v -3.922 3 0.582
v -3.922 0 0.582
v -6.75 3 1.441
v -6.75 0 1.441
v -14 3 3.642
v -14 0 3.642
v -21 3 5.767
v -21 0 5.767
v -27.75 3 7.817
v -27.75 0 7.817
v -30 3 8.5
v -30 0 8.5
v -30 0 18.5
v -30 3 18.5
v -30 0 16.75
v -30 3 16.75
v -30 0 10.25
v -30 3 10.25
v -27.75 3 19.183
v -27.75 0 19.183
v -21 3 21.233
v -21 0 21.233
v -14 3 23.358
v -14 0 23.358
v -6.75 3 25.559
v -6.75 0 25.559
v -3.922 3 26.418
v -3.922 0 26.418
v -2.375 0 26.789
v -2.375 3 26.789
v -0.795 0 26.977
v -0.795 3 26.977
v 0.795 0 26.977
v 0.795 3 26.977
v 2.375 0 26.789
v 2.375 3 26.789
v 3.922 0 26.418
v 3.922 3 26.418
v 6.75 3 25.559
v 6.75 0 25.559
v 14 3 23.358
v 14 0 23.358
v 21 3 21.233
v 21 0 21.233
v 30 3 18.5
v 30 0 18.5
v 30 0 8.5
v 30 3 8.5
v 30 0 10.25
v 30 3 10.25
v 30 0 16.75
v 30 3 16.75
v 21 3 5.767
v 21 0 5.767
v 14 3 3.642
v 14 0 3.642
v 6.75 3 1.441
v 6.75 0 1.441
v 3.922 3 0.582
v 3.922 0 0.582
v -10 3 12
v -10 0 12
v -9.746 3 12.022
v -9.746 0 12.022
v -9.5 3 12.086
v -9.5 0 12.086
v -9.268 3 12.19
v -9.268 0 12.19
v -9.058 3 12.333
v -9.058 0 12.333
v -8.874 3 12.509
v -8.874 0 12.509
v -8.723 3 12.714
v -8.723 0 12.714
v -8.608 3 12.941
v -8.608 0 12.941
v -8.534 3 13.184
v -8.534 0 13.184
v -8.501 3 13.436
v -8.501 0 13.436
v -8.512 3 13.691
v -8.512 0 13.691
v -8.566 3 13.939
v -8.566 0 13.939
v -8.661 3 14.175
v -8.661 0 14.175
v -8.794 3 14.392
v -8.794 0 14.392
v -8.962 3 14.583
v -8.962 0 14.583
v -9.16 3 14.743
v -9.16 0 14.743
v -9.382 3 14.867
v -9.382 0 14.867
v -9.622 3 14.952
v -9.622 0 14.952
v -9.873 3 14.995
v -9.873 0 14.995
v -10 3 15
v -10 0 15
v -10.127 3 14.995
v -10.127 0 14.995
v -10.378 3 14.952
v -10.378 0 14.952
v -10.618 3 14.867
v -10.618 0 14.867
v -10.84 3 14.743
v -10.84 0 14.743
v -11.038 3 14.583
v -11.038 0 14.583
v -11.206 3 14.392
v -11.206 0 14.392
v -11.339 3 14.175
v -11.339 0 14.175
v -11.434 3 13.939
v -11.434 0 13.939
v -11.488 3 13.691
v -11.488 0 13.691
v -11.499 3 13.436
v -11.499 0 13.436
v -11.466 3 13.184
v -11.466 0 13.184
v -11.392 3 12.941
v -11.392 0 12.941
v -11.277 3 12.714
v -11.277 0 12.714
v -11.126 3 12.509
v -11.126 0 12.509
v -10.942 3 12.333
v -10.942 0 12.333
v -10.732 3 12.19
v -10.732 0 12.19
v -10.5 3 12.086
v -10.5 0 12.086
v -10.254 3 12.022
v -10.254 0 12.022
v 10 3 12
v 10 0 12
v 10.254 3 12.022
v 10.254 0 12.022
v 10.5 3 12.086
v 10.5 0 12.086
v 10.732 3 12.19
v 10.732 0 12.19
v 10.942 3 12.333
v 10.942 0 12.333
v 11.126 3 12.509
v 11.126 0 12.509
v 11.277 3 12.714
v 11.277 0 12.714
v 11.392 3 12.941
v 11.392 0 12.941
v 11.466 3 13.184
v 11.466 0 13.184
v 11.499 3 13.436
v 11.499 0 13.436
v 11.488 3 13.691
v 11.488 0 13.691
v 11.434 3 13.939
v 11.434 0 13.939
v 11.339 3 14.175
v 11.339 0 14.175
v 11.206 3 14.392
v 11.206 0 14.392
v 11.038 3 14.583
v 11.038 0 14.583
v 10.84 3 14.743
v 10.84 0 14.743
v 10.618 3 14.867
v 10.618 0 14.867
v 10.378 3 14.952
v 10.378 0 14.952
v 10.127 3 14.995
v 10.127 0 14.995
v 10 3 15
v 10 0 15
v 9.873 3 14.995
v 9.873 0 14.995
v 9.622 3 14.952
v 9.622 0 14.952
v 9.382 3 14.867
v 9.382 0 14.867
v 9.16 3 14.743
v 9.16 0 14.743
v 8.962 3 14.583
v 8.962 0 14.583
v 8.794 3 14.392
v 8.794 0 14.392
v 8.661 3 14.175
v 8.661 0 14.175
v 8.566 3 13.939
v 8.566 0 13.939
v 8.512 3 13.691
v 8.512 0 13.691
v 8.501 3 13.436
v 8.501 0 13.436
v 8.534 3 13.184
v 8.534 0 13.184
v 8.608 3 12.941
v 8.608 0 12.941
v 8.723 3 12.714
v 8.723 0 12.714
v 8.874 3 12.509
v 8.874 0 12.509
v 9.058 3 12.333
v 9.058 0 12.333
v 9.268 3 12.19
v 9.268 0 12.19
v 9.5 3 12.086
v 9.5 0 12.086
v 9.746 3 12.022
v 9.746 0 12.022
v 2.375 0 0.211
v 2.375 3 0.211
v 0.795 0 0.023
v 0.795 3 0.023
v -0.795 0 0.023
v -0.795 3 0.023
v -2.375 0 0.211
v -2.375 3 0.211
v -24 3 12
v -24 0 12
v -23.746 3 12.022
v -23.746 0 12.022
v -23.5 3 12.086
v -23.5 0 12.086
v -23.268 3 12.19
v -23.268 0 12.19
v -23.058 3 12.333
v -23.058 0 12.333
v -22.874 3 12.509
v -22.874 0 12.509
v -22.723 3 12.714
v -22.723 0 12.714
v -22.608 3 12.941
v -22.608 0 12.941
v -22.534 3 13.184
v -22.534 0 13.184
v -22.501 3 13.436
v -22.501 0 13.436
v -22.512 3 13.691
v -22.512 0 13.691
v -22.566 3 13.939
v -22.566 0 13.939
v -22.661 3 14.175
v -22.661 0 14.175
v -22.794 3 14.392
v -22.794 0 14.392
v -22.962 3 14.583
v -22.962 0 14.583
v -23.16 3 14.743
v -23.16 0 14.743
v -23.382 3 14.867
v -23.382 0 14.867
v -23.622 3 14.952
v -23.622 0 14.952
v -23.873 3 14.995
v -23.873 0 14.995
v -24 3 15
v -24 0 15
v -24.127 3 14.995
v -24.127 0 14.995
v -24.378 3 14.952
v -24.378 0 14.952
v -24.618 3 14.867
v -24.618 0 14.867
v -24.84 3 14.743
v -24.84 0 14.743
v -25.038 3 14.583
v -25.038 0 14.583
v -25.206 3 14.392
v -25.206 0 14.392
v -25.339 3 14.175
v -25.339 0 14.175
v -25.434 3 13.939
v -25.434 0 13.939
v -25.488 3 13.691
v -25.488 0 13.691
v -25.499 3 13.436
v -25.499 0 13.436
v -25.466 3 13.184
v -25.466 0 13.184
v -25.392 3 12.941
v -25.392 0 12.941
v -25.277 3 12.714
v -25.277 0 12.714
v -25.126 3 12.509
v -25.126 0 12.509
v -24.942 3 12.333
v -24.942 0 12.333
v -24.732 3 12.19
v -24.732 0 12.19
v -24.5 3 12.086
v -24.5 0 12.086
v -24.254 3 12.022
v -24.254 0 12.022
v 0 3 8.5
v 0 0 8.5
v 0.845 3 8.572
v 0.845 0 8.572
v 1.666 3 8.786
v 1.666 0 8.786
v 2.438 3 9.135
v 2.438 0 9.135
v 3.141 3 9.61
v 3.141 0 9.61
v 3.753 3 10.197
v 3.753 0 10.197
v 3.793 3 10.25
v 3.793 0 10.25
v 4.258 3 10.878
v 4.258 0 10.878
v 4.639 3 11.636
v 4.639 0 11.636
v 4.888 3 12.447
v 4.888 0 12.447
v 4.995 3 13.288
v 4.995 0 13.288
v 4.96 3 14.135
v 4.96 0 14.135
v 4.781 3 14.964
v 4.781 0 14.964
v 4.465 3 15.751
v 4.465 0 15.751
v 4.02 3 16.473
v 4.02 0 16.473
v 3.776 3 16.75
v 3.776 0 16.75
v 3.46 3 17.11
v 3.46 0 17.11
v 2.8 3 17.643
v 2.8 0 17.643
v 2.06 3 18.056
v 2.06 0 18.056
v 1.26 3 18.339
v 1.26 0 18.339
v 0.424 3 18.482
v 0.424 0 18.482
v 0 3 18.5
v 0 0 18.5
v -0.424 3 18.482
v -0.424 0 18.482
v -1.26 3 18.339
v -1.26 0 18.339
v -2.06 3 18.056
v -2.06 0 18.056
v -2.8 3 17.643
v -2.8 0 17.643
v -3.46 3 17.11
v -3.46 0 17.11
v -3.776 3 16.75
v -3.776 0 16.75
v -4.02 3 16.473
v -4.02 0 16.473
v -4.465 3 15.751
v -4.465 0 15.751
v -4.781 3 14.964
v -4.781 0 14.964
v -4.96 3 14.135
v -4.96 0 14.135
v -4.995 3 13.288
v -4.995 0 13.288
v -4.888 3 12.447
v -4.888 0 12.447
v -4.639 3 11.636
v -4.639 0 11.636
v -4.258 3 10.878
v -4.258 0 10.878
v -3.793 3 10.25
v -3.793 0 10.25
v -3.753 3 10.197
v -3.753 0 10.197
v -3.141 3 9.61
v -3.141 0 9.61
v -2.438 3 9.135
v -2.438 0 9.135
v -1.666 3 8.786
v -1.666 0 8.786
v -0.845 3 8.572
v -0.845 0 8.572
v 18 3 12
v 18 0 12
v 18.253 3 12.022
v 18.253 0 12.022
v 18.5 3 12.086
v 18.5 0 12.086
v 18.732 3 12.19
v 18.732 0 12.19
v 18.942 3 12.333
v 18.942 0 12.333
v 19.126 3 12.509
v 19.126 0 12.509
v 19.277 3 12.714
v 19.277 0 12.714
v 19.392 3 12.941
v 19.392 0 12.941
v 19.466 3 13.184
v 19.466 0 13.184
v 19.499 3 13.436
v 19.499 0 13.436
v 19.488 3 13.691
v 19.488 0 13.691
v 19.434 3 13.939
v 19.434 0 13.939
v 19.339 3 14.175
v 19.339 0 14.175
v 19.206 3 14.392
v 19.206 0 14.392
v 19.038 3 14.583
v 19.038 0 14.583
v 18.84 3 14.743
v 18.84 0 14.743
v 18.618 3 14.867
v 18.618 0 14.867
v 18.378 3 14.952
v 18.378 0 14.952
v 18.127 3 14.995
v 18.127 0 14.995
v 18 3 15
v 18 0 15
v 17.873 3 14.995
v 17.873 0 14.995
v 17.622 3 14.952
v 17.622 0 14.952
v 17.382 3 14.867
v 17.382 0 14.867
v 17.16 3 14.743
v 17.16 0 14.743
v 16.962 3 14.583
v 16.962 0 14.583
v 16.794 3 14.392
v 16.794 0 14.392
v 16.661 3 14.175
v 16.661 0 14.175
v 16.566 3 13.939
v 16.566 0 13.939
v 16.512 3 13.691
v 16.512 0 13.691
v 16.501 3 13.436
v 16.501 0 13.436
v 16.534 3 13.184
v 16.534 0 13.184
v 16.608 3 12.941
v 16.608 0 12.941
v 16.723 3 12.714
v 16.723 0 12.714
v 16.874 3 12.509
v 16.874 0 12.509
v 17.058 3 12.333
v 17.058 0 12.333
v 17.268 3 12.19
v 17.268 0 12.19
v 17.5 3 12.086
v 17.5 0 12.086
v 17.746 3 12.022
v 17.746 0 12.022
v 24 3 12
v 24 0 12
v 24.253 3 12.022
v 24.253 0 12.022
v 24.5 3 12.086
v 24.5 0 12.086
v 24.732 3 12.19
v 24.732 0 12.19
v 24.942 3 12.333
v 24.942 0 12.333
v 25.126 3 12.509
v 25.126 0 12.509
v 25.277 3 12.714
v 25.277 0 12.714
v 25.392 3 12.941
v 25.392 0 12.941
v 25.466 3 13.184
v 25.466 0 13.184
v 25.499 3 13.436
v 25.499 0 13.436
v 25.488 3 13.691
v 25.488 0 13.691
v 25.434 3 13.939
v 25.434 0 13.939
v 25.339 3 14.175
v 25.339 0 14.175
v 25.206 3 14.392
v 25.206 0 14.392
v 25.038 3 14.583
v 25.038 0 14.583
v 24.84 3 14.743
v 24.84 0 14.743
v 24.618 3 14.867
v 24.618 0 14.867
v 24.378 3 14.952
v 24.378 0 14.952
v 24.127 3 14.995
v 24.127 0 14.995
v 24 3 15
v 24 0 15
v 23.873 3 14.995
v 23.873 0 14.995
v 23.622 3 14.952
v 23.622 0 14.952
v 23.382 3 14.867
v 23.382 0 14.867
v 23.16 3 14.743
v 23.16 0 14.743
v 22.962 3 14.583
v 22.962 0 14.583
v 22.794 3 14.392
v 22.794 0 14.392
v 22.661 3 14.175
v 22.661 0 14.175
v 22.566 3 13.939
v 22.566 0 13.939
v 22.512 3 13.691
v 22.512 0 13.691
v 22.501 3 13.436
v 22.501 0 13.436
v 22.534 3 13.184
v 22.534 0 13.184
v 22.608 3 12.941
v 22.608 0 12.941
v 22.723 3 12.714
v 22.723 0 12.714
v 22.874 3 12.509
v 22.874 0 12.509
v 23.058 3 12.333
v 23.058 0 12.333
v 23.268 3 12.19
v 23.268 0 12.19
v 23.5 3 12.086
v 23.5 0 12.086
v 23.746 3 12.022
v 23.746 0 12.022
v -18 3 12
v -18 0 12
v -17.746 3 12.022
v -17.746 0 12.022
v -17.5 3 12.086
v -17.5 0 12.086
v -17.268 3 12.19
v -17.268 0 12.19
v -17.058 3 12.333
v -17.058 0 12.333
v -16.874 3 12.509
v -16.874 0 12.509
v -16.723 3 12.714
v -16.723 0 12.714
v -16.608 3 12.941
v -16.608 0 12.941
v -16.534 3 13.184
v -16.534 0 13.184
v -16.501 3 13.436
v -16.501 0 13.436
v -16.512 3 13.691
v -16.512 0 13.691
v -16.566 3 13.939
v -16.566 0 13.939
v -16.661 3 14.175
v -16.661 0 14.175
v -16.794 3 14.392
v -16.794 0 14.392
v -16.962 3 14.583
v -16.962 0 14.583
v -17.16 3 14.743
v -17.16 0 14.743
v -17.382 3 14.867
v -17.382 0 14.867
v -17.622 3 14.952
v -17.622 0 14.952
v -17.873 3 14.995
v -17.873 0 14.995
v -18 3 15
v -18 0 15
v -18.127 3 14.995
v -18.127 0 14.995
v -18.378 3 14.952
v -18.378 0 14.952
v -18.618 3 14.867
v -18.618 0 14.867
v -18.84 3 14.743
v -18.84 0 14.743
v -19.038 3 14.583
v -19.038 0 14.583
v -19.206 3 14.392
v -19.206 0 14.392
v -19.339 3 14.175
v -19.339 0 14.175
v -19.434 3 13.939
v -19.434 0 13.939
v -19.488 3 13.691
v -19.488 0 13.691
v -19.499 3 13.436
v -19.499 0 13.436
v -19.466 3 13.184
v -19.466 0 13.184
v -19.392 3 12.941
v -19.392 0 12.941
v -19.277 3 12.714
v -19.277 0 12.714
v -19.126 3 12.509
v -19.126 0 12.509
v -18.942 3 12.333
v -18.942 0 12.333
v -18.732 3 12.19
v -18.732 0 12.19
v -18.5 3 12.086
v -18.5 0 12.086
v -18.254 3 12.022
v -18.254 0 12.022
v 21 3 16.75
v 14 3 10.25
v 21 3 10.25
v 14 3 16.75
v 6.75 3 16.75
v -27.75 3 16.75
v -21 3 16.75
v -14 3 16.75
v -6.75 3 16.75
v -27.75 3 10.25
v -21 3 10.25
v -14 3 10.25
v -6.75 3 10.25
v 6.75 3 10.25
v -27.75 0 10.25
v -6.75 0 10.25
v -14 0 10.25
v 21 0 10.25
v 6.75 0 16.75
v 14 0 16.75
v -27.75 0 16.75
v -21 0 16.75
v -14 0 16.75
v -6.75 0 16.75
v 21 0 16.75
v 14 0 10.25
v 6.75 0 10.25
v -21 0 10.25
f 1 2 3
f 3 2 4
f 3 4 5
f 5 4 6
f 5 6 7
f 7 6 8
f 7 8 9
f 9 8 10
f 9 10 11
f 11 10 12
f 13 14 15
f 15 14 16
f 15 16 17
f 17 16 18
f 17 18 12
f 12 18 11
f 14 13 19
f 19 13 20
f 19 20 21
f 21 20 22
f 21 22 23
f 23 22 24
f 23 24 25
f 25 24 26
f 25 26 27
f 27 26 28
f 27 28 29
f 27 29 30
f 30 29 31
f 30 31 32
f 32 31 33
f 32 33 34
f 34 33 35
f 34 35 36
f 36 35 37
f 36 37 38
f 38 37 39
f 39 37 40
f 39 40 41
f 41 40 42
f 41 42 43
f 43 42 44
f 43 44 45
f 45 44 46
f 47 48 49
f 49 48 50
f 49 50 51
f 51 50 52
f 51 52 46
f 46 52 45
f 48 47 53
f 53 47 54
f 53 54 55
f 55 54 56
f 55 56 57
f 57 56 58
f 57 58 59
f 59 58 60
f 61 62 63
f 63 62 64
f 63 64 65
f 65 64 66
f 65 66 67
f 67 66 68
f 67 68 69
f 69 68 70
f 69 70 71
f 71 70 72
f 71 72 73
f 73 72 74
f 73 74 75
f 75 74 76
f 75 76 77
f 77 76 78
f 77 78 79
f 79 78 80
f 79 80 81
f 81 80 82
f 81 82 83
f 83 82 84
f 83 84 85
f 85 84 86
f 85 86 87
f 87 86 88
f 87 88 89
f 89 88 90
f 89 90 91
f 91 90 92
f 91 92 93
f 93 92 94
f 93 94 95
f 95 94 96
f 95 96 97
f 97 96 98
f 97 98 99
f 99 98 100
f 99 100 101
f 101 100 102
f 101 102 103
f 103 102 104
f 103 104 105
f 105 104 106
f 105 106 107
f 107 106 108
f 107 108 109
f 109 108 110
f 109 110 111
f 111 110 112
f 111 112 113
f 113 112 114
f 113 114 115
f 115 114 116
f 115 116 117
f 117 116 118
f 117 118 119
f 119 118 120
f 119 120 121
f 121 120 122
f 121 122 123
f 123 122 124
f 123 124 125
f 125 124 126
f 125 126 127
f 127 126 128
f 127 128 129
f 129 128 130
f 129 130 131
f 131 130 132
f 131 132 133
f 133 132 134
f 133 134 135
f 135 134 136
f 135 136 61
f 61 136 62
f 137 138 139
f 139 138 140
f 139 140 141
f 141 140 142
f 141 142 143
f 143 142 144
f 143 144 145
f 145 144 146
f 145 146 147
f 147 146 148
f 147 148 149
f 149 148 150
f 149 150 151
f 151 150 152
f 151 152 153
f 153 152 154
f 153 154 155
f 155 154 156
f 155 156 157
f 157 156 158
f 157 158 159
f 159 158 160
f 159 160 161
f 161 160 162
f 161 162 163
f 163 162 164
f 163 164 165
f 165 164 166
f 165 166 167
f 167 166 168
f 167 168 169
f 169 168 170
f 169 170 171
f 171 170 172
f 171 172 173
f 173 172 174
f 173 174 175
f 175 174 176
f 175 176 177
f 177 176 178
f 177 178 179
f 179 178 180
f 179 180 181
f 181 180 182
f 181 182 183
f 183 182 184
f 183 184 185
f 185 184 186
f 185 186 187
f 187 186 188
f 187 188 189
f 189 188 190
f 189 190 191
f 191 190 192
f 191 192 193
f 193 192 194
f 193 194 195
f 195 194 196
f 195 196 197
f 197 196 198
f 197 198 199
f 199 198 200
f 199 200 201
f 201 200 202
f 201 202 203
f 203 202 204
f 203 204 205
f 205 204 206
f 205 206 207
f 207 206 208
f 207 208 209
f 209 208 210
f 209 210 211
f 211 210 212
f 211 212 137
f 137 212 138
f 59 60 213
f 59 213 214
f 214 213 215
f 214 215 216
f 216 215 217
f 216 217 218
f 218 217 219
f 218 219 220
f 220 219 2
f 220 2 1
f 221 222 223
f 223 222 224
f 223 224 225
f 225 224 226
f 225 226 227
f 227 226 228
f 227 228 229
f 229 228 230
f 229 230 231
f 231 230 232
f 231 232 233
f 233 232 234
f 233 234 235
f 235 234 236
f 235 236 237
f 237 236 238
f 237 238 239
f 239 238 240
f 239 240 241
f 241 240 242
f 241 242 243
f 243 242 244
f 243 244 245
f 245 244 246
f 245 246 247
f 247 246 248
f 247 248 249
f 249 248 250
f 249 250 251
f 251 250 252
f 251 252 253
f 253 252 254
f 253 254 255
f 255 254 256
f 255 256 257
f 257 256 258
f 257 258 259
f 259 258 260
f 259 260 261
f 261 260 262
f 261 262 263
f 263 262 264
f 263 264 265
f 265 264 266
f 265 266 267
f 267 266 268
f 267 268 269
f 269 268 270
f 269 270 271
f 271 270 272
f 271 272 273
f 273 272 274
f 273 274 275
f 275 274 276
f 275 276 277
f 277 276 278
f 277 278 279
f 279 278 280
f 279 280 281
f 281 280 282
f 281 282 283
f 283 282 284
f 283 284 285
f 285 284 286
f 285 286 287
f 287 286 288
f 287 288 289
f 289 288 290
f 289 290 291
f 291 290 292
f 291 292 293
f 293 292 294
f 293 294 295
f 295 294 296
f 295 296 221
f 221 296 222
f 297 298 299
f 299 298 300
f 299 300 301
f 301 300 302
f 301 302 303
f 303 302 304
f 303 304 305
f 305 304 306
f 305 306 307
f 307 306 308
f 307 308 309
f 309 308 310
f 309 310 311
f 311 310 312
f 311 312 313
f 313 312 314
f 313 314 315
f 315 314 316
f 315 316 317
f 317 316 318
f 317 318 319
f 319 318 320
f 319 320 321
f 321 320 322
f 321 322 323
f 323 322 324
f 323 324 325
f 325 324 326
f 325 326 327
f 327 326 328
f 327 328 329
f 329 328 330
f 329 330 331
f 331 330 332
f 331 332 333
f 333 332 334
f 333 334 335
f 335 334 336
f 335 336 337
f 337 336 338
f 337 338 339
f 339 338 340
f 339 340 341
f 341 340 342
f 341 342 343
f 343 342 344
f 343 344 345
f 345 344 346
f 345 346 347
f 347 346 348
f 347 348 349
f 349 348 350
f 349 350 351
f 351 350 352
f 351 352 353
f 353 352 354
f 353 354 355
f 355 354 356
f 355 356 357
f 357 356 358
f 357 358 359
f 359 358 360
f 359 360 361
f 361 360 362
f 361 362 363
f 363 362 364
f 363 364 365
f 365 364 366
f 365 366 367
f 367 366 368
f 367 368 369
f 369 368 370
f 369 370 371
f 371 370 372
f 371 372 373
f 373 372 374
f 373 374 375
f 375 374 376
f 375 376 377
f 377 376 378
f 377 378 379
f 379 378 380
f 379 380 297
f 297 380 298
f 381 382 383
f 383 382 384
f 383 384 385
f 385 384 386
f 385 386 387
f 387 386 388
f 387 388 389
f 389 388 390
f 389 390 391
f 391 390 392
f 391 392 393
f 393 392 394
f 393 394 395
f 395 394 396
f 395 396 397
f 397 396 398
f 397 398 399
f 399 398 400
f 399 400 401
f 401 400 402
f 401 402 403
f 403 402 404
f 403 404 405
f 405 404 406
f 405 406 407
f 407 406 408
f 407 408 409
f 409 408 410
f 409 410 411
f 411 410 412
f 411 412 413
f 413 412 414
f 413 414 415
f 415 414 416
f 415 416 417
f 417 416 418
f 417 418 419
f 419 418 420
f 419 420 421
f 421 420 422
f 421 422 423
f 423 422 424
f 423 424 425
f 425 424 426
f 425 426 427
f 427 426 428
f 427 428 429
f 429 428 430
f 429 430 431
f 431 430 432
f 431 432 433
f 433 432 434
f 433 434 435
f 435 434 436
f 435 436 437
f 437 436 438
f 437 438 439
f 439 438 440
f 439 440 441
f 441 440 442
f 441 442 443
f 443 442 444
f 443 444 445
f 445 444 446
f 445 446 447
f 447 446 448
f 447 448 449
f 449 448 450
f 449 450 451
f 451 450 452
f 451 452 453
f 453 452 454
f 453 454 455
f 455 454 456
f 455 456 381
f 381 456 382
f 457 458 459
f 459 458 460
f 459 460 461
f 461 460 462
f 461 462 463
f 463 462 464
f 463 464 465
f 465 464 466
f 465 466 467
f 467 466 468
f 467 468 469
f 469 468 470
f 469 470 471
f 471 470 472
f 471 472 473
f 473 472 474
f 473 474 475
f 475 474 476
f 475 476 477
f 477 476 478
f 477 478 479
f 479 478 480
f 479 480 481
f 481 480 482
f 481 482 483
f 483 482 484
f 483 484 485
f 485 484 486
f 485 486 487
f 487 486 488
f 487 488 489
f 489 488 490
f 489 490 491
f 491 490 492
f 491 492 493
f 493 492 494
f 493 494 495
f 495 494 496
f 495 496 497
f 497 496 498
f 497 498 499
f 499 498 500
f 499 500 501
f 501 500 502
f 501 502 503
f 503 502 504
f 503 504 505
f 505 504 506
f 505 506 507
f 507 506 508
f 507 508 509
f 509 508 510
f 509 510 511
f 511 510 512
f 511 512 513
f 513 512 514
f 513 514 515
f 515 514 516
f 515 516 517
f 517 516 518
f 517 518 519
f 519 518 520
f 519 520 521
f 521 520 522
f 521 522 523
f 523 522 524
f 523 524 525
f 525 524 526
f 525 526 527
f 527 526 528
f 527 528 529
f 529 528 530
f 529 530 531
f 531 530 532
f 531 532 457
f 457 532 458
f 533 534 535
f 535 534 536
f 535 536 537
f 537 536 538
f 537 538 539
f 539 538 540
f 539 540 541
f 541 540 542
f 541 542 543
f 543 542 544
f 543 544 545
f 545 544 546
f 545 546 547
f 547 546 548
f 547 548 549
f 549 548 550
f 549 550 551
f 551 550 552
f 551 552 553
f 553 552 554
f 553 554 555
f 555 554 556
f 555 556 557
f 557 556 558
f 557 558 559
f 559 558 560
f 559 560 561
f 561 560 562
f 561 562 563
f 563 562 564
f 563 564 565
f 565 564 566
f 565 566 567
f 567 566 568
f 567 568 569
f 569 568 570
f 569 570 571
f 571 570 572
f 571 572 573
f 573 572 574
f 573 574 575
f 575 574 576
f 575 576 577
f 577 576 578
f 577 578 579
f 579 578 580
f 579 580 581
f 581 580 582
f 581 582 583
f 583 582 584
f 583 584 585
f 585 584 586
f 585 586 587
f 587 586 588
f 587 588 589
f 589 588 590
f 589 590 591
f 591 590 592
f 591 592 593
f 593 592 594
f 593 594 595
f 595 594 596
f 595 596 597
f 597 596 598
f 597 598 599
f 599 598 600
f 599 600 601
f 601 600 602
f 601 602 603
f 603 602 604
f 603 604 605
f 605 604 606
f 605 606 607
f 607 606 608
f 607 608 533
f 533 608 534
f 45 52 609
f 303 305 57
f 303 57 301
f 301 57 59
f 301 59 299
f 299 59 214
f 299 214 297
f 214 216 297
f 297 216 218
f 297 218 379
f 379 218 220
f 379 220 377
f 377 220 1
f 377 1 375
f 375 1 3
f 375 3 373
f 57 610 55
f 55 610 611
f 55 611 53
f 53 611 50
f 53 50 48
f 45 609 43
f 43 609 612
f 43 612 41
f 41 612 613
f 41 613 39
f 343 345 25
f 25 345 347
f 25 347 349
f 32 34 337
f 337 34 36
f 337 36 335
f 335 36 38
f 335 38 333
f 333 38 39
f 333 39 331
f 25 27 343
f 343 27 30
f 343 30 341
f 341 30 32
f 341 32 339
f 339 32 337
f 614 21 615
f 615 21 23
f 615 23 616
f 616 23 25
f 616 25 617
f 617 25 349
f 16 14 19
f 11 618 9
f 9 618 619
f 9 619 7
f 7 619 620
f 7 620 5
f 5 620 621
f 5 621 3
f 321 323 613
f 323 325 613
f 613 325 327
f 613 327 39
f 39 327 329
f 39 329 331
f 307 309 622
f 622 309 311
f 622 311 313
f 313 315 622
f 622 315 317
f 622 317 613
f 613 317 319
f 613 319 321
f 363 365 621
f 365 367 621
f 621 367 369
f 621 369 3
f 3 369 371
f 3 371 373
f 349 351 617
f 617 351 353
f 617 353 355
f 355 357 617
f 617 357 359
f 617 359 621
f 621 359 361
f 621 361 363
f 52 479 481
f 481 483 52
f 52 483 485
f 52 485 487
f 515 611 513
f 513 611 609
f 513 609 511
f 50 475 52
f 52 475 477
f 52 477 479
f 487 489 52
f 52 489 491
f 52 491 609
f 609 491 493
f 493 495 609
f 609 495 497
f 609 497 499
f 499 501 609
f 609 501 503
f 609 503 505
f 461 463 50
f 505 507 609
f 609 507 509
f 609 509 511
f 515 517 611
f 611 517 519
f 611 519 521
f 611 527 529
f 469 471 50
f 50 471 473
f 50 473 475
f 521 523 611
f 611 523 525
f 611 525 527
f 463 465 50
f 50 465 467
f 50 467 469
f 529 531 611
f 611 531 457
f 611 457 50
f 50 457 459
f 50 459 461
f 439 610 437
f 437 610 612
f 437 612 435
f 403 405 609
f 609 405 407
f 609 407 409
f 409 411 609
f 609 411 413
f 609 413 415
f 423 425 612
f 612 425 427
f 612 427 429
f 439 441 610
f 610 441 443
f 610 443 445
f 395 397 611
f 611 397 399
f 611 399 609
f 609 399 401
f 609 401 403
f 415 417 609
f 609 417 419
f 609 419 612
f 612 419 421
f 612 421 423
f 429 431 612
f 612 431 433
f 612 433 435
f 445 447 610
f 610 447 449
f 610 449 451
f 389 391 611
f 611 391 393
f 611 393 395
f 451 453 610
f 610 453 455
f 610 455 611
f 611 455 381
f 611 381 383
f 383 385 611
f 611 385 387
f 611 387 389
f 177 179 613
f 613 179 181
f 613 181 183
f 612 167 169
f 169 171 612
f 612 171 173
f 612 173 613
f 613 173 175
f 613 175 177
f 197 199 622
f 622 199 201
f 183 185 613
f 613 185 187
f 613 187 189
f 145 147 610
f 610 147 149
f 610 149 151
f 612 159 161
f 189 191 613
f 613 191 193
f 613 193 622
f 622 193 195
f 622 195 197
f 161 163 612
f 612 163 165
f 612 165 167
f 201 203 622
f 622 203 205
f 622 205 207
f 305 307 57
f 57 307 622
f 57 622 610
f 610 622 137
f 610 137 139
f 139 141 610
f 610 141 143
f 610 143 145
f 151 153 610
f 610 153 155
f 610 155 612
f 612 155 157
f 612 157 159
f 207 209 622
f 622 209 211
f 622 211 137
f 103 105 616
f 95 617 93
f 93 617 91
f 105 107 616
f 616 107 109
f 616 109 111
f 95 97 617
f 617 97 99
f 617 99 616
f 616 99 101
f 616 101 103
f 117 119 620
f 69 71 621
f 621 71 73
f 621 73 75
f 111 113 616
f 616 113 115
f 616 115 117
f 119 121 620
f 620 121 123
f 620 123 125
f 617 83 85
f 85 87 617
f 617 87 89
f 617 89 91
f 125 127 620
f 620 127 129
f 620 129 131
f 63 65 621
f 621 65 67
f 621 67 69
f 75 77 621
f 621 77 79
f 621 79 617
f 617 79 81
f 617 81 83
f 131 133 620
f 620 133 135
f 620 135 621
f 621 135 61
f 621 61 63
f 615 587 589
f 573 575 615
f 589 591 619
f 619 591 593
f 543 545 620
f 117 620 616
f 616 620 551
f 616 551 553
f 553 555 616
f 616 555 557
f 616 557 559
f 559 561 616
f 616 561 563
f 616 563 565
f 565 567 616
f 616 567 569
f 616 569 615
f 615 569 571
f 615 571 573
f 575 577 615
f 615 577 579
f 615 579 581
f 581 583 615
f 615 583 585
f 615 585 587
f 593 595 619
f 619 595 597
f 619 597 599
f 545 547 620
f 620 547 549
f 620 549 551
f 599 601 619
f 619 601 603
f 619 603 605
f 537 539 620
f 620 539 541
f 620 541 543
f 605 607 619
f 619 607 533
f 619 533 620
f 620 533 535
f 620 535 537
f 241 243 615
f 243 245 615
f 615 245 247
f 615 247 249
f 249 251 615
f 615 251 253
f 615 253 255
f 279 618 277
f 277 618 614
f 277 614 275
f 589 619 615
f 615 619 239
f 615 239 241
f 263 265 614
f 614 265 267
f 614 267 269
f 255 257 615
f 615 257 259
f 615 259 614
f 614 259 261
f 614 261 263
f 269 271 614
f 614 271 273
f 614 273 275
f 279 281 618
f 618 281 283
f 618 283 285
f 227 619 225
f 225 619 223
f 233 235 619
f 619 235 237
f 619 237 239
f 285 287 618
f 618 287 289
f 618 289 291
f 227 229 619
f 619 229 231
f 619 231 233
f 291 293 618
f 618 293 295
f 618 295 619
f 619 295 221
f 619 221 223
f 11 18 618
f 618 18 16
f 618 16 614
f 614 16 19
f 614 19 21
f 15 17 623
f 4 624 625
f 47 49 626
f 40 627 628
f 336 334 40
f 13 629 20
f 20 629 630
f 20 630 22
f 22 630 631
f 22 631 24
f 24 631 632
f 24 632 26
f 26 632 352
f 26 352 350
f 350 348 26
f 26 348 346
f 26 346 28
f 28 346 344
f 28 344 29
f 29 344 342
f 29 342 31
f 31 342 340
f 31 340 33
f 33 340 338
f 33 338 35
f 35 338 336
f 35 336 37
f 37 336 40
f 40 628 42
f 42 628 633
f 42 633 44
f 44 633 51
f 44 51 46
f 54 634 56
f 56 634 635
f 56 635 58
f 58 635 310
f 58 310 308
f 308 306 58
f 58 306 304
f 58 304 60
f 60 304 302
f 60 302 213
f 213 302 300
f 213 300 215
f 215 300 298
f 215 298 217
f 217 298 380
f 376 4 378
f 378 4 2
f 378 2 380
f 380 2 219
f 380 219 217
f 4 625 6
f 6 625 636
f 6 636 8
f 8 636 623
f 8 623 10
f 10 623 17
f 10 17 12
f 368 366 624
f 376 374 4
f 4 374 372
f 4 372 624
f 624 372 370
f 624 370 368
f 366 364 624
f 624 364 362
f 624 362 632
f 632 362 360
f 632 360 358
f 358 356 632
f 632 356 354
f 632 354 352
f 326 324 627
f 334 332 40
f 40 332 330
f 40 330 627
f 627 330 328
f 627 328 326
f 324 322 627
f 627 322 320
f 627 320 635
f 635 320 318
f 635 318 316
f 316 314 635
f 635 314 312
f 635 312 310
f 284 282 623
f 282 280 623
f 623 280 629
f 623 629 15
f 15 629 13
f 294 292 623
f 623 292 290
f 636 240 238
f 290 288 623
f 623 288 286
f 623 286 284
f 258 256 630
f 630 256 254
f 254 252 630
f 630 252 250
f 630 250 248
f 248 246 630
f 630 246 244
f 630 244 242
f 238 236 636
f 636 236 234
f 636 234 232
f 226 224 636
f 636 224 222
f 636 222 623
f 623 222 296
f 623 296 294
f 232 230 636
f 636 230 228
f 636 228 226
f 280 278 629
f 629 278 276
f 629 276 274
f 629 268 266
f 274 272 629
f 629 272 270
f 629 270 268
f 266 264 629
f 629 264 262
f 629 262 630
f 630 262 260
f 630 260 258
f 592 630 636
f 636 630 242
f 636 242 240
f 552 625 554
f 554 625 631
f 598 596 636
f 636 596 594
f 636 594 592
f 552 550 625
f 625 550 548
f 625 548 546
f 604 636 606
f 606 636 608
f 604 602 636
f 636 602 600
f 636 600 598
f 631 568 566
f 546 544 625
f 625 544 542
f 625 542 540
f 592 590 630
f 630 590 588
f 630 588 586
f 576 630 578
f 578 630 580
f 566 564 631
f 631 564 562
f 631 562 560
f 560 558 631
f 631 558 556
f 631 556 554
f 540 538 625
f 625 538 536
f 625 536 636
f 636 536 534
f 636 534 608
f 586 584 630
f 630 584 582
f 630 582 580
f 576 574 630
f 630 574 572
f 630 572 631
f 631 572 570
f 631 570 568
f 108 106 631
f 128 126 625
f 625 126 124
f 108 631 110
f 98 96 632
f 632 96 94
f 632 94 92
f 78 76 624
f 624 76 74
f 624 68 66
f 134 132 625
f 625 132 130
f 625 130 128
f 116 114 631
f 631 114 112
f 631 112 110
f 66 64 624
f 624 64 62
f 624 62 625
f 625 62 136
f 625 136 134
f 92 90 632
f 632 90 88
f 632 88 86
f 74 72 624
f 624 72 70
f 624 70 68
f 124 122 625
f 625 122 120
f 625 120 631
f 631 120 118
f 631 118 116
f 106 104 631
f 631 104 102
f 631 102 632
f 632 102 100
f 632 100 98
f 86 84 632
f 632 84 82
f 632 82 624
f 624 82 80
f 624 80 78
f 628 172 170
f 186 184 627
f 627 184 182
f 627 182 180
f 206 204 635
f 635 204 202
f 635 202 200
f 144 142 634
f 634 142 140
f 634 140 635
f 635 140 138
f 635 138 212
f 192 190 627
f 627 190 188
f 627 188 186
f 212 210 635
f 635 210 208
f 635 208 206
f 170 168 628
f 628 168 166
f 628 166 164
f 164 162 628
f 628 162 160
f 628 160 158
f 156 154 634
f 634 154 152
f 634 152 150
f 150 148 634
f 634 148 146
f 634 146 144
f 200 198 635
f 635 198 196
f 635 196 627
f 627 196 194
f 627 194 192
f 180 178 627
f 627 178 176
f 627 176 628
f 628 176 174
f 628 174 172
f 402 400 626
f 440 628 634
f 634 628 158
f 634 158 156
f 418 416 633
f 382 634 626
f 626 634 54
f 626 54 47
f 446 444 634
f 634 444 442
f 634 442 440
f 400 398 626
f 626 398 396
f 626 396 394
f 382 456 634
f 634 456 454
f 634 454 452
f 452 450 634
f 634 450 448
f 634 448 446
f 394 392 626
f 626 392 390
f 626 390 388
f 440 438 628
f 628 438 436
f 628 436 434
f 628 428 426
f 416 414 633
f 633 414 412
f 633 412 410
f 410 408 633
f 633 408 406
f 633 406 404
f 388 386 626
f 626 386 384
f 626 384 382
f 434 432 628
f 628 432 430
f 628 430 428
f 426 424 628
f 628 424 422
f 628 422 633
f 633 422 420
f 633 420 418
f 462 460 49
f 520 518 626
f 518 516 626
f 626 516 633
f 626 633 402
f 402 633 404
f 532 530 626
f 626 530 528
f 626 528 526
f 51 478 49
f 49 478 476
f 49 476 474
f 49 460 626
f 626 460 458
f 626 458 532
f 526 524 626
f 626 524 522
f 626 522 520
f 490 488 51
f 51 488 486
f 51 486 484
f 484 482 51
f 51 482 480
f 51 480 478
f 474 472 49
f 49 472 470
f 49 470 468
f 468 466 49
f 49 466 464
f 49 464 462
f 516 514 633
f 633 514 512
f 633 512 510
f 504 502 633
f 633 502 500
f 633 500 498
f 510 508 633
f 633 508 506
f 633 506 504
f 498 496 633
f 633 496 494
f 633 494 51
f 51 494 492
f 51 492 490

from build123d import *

# Parameters (mm, degrees)
BOSS_EXTRUDE1_DEPTH = 3


with BuildPart() as part:
    # Sketch1 → Boss-Extrude1 (new body)
    with BuildSketch(Plane(origin=(0, 0, 0), x_dir=(1, 0, 0), z_dir=(0, 1, 0))):
        with BuildLine():
            Line((0, -8.5), (0, 0))
            ThreePointArc((0, 0), (-1.982516962, -0.146362799), (-3.922046259, -0.582277556))
            ThreePointArc((-3.922046259, -0.582277556), (-10.844298606, -5.459403769), (-13.5, -13.5))
            Line((-13.5, -13.5), (-11.5, -13.5))
            ThreePointArc((-11.5, -13.5), (-10, -12), (-8.5, -13.5))
            Line((-8.5, -13.5), (-5, -13.5))
            ThreePointArc((-5, -13.5), (-3.535533906, -9.964466094), (0, -8.5))
        make_face()
        with BuildLine():
            ThreePointArc((0, -18.5), (-3.535533906, -17.035533906), (-5, -13.5))
            Line((-5, -13.5), (-8.5, -13.5))
            ThreePointArc((-8.5, -13.5), (-10, -15), (-11.5, -13.5))
            Line((-11.5, -13.5), (-13.5, -13.5))
            ThreePointArc((-13.5, -13.5), (-10.844298606, -21.540596231), (-3.922046259, -26.417722444))
            ThreePointArc((-3.922046259, -26.417722444), (-1.982516962, -26.853637201), (0, -27))
            Line((0, -27), (0, -18.5))
        make_face()
        with BuildLine():
            ThreePointArc((-13.5, -13.5), (-10.844298606, -5.459403769), (-3.922046259, -0.582277556))
            Line((-3.922046259, -0.582277556), (-30, -8.5))
            Line((-30, -8.5), (-30, -13.5))
            Line((-30, -13.5), (-25.5, -13.5))
            ThreePointArc((-25.5, -13.5), (-24, -12), (-22.5, -13.5))
            Line((-22.5, -13.5), (-19.5, -13.5))
            ThreePointArc((-19.5, -13.5), (-18, -12), (-16.5, -13.5))
            Line((-16.5, -13.5), (-13.5, -13.5))
        make_face()
        with BuildLine():
            ThreePointArc((-3.922046259, -26.417722444), (-10.844298606, -21.540596231), (-13.5, -13.5))
            Line((-13.5, -13.5), (-16.5, -13.5))
            ThreePointArc((-16.5, -13.5), (-18, -15), (-19.5, -13.5))
            Line((-19.5, -13.5), (-22.5, -13.5))
            ThreePointArc((-22.5, -13.5), (-24, -15), (-25.5, -13.5))
            Line((-25.5, -13.5), (-30, -13.5))
            Line((-30, -13.5), (-30, -18.5))
            Line((-30, -18.5), (-3.922046259, -26.417722444))
        make_face()
        with BuildLine():
            ThreePointArc((3.922046259, -0.582277556), (1.982516962, -0.146362799), (0, 0))
            Line((0, 0), (0, -8.5))
            ThreePointArc((0, -8.5), (3.535533906, -9.964466094), (5, -13.5))
            Line((5, -13.5), (8.5, -13.5))
            ThreePointArc((8.5, -13.5), (10, -12), (11.5, -13.5))
            Line((11.5, -13.5), (13.5, -13.5))
            ThreePointArc((13.5, -13.5), (10.844298606, -5.459403769), (3.922046259, -0.582277556))
        make_face()
        with BuildLine():
            Line((8.5, -13.5), (5, -13.5))
            ThreePointArc((5, -13.5), (3.535533906, -17.035533906), (0, -18.5))
            Line((0, -18.5), (0, -27))
            ThreePointArc((0, -27), (1.982516962, -26.853637201), (3.922046259, -26.417722444))
            ThreePointArc((3.922046259, -26.417722444), (10.844298606, -21.540596231), (13.5, -13.5))
            Line((13.5, -13.5), (11.5, -13.5))
            ThreePointArc((11.5, -13.5), (10, -15), (8.5, -13.5))
        make_face()
        with BuildLine():
            Line((16.5, -13.5), (13.5, -13.5))
            ThreePointArc((13.5, -13.5), (10.844298606, -21.540596231), (3.922046259, -26.417722444))
            Line((3.922046259, -26.417722444), (30, -18.5))
            Line((30, -18.5), (30, -13.5))
            Line((30, -13.5), (25.5, -13.5))
            ThreePointArc((25.5, -13.5), (24, -15), (22.5, -13.5))
            Line((22.5, -13.5), (19.5, -13.5))
            ThreePointArc((19.5, -13.5), (18, -15), (16.5, -13.5))
        make_face()
        with BuildLine():
            Line((30, -8.5), (3.922046259, -0.582277556))
            ThreePointArc((3.922046259, -0.582277556), (10.844298606, -5.459403769), (13.5, -13.5))
            Line((13.5, -13.5), (16.5, -13.5))
            ThreePointArc((16.5, -13.5), (18, -12), (19.5, -13.5))
            Line((19.5, -13.5), (22.5, -13.5))
            ThreePointArc((22.5, -13.5), (24, -12), (25.5, -13.5))
            Line((25.5, -13.5), (30, -13.5))
            Line((30, -13.5), (30, -8.5))
        make_face()
    extrude(amount=BOSS_EXTRUDE1_DEPTH)


solid = part.part
